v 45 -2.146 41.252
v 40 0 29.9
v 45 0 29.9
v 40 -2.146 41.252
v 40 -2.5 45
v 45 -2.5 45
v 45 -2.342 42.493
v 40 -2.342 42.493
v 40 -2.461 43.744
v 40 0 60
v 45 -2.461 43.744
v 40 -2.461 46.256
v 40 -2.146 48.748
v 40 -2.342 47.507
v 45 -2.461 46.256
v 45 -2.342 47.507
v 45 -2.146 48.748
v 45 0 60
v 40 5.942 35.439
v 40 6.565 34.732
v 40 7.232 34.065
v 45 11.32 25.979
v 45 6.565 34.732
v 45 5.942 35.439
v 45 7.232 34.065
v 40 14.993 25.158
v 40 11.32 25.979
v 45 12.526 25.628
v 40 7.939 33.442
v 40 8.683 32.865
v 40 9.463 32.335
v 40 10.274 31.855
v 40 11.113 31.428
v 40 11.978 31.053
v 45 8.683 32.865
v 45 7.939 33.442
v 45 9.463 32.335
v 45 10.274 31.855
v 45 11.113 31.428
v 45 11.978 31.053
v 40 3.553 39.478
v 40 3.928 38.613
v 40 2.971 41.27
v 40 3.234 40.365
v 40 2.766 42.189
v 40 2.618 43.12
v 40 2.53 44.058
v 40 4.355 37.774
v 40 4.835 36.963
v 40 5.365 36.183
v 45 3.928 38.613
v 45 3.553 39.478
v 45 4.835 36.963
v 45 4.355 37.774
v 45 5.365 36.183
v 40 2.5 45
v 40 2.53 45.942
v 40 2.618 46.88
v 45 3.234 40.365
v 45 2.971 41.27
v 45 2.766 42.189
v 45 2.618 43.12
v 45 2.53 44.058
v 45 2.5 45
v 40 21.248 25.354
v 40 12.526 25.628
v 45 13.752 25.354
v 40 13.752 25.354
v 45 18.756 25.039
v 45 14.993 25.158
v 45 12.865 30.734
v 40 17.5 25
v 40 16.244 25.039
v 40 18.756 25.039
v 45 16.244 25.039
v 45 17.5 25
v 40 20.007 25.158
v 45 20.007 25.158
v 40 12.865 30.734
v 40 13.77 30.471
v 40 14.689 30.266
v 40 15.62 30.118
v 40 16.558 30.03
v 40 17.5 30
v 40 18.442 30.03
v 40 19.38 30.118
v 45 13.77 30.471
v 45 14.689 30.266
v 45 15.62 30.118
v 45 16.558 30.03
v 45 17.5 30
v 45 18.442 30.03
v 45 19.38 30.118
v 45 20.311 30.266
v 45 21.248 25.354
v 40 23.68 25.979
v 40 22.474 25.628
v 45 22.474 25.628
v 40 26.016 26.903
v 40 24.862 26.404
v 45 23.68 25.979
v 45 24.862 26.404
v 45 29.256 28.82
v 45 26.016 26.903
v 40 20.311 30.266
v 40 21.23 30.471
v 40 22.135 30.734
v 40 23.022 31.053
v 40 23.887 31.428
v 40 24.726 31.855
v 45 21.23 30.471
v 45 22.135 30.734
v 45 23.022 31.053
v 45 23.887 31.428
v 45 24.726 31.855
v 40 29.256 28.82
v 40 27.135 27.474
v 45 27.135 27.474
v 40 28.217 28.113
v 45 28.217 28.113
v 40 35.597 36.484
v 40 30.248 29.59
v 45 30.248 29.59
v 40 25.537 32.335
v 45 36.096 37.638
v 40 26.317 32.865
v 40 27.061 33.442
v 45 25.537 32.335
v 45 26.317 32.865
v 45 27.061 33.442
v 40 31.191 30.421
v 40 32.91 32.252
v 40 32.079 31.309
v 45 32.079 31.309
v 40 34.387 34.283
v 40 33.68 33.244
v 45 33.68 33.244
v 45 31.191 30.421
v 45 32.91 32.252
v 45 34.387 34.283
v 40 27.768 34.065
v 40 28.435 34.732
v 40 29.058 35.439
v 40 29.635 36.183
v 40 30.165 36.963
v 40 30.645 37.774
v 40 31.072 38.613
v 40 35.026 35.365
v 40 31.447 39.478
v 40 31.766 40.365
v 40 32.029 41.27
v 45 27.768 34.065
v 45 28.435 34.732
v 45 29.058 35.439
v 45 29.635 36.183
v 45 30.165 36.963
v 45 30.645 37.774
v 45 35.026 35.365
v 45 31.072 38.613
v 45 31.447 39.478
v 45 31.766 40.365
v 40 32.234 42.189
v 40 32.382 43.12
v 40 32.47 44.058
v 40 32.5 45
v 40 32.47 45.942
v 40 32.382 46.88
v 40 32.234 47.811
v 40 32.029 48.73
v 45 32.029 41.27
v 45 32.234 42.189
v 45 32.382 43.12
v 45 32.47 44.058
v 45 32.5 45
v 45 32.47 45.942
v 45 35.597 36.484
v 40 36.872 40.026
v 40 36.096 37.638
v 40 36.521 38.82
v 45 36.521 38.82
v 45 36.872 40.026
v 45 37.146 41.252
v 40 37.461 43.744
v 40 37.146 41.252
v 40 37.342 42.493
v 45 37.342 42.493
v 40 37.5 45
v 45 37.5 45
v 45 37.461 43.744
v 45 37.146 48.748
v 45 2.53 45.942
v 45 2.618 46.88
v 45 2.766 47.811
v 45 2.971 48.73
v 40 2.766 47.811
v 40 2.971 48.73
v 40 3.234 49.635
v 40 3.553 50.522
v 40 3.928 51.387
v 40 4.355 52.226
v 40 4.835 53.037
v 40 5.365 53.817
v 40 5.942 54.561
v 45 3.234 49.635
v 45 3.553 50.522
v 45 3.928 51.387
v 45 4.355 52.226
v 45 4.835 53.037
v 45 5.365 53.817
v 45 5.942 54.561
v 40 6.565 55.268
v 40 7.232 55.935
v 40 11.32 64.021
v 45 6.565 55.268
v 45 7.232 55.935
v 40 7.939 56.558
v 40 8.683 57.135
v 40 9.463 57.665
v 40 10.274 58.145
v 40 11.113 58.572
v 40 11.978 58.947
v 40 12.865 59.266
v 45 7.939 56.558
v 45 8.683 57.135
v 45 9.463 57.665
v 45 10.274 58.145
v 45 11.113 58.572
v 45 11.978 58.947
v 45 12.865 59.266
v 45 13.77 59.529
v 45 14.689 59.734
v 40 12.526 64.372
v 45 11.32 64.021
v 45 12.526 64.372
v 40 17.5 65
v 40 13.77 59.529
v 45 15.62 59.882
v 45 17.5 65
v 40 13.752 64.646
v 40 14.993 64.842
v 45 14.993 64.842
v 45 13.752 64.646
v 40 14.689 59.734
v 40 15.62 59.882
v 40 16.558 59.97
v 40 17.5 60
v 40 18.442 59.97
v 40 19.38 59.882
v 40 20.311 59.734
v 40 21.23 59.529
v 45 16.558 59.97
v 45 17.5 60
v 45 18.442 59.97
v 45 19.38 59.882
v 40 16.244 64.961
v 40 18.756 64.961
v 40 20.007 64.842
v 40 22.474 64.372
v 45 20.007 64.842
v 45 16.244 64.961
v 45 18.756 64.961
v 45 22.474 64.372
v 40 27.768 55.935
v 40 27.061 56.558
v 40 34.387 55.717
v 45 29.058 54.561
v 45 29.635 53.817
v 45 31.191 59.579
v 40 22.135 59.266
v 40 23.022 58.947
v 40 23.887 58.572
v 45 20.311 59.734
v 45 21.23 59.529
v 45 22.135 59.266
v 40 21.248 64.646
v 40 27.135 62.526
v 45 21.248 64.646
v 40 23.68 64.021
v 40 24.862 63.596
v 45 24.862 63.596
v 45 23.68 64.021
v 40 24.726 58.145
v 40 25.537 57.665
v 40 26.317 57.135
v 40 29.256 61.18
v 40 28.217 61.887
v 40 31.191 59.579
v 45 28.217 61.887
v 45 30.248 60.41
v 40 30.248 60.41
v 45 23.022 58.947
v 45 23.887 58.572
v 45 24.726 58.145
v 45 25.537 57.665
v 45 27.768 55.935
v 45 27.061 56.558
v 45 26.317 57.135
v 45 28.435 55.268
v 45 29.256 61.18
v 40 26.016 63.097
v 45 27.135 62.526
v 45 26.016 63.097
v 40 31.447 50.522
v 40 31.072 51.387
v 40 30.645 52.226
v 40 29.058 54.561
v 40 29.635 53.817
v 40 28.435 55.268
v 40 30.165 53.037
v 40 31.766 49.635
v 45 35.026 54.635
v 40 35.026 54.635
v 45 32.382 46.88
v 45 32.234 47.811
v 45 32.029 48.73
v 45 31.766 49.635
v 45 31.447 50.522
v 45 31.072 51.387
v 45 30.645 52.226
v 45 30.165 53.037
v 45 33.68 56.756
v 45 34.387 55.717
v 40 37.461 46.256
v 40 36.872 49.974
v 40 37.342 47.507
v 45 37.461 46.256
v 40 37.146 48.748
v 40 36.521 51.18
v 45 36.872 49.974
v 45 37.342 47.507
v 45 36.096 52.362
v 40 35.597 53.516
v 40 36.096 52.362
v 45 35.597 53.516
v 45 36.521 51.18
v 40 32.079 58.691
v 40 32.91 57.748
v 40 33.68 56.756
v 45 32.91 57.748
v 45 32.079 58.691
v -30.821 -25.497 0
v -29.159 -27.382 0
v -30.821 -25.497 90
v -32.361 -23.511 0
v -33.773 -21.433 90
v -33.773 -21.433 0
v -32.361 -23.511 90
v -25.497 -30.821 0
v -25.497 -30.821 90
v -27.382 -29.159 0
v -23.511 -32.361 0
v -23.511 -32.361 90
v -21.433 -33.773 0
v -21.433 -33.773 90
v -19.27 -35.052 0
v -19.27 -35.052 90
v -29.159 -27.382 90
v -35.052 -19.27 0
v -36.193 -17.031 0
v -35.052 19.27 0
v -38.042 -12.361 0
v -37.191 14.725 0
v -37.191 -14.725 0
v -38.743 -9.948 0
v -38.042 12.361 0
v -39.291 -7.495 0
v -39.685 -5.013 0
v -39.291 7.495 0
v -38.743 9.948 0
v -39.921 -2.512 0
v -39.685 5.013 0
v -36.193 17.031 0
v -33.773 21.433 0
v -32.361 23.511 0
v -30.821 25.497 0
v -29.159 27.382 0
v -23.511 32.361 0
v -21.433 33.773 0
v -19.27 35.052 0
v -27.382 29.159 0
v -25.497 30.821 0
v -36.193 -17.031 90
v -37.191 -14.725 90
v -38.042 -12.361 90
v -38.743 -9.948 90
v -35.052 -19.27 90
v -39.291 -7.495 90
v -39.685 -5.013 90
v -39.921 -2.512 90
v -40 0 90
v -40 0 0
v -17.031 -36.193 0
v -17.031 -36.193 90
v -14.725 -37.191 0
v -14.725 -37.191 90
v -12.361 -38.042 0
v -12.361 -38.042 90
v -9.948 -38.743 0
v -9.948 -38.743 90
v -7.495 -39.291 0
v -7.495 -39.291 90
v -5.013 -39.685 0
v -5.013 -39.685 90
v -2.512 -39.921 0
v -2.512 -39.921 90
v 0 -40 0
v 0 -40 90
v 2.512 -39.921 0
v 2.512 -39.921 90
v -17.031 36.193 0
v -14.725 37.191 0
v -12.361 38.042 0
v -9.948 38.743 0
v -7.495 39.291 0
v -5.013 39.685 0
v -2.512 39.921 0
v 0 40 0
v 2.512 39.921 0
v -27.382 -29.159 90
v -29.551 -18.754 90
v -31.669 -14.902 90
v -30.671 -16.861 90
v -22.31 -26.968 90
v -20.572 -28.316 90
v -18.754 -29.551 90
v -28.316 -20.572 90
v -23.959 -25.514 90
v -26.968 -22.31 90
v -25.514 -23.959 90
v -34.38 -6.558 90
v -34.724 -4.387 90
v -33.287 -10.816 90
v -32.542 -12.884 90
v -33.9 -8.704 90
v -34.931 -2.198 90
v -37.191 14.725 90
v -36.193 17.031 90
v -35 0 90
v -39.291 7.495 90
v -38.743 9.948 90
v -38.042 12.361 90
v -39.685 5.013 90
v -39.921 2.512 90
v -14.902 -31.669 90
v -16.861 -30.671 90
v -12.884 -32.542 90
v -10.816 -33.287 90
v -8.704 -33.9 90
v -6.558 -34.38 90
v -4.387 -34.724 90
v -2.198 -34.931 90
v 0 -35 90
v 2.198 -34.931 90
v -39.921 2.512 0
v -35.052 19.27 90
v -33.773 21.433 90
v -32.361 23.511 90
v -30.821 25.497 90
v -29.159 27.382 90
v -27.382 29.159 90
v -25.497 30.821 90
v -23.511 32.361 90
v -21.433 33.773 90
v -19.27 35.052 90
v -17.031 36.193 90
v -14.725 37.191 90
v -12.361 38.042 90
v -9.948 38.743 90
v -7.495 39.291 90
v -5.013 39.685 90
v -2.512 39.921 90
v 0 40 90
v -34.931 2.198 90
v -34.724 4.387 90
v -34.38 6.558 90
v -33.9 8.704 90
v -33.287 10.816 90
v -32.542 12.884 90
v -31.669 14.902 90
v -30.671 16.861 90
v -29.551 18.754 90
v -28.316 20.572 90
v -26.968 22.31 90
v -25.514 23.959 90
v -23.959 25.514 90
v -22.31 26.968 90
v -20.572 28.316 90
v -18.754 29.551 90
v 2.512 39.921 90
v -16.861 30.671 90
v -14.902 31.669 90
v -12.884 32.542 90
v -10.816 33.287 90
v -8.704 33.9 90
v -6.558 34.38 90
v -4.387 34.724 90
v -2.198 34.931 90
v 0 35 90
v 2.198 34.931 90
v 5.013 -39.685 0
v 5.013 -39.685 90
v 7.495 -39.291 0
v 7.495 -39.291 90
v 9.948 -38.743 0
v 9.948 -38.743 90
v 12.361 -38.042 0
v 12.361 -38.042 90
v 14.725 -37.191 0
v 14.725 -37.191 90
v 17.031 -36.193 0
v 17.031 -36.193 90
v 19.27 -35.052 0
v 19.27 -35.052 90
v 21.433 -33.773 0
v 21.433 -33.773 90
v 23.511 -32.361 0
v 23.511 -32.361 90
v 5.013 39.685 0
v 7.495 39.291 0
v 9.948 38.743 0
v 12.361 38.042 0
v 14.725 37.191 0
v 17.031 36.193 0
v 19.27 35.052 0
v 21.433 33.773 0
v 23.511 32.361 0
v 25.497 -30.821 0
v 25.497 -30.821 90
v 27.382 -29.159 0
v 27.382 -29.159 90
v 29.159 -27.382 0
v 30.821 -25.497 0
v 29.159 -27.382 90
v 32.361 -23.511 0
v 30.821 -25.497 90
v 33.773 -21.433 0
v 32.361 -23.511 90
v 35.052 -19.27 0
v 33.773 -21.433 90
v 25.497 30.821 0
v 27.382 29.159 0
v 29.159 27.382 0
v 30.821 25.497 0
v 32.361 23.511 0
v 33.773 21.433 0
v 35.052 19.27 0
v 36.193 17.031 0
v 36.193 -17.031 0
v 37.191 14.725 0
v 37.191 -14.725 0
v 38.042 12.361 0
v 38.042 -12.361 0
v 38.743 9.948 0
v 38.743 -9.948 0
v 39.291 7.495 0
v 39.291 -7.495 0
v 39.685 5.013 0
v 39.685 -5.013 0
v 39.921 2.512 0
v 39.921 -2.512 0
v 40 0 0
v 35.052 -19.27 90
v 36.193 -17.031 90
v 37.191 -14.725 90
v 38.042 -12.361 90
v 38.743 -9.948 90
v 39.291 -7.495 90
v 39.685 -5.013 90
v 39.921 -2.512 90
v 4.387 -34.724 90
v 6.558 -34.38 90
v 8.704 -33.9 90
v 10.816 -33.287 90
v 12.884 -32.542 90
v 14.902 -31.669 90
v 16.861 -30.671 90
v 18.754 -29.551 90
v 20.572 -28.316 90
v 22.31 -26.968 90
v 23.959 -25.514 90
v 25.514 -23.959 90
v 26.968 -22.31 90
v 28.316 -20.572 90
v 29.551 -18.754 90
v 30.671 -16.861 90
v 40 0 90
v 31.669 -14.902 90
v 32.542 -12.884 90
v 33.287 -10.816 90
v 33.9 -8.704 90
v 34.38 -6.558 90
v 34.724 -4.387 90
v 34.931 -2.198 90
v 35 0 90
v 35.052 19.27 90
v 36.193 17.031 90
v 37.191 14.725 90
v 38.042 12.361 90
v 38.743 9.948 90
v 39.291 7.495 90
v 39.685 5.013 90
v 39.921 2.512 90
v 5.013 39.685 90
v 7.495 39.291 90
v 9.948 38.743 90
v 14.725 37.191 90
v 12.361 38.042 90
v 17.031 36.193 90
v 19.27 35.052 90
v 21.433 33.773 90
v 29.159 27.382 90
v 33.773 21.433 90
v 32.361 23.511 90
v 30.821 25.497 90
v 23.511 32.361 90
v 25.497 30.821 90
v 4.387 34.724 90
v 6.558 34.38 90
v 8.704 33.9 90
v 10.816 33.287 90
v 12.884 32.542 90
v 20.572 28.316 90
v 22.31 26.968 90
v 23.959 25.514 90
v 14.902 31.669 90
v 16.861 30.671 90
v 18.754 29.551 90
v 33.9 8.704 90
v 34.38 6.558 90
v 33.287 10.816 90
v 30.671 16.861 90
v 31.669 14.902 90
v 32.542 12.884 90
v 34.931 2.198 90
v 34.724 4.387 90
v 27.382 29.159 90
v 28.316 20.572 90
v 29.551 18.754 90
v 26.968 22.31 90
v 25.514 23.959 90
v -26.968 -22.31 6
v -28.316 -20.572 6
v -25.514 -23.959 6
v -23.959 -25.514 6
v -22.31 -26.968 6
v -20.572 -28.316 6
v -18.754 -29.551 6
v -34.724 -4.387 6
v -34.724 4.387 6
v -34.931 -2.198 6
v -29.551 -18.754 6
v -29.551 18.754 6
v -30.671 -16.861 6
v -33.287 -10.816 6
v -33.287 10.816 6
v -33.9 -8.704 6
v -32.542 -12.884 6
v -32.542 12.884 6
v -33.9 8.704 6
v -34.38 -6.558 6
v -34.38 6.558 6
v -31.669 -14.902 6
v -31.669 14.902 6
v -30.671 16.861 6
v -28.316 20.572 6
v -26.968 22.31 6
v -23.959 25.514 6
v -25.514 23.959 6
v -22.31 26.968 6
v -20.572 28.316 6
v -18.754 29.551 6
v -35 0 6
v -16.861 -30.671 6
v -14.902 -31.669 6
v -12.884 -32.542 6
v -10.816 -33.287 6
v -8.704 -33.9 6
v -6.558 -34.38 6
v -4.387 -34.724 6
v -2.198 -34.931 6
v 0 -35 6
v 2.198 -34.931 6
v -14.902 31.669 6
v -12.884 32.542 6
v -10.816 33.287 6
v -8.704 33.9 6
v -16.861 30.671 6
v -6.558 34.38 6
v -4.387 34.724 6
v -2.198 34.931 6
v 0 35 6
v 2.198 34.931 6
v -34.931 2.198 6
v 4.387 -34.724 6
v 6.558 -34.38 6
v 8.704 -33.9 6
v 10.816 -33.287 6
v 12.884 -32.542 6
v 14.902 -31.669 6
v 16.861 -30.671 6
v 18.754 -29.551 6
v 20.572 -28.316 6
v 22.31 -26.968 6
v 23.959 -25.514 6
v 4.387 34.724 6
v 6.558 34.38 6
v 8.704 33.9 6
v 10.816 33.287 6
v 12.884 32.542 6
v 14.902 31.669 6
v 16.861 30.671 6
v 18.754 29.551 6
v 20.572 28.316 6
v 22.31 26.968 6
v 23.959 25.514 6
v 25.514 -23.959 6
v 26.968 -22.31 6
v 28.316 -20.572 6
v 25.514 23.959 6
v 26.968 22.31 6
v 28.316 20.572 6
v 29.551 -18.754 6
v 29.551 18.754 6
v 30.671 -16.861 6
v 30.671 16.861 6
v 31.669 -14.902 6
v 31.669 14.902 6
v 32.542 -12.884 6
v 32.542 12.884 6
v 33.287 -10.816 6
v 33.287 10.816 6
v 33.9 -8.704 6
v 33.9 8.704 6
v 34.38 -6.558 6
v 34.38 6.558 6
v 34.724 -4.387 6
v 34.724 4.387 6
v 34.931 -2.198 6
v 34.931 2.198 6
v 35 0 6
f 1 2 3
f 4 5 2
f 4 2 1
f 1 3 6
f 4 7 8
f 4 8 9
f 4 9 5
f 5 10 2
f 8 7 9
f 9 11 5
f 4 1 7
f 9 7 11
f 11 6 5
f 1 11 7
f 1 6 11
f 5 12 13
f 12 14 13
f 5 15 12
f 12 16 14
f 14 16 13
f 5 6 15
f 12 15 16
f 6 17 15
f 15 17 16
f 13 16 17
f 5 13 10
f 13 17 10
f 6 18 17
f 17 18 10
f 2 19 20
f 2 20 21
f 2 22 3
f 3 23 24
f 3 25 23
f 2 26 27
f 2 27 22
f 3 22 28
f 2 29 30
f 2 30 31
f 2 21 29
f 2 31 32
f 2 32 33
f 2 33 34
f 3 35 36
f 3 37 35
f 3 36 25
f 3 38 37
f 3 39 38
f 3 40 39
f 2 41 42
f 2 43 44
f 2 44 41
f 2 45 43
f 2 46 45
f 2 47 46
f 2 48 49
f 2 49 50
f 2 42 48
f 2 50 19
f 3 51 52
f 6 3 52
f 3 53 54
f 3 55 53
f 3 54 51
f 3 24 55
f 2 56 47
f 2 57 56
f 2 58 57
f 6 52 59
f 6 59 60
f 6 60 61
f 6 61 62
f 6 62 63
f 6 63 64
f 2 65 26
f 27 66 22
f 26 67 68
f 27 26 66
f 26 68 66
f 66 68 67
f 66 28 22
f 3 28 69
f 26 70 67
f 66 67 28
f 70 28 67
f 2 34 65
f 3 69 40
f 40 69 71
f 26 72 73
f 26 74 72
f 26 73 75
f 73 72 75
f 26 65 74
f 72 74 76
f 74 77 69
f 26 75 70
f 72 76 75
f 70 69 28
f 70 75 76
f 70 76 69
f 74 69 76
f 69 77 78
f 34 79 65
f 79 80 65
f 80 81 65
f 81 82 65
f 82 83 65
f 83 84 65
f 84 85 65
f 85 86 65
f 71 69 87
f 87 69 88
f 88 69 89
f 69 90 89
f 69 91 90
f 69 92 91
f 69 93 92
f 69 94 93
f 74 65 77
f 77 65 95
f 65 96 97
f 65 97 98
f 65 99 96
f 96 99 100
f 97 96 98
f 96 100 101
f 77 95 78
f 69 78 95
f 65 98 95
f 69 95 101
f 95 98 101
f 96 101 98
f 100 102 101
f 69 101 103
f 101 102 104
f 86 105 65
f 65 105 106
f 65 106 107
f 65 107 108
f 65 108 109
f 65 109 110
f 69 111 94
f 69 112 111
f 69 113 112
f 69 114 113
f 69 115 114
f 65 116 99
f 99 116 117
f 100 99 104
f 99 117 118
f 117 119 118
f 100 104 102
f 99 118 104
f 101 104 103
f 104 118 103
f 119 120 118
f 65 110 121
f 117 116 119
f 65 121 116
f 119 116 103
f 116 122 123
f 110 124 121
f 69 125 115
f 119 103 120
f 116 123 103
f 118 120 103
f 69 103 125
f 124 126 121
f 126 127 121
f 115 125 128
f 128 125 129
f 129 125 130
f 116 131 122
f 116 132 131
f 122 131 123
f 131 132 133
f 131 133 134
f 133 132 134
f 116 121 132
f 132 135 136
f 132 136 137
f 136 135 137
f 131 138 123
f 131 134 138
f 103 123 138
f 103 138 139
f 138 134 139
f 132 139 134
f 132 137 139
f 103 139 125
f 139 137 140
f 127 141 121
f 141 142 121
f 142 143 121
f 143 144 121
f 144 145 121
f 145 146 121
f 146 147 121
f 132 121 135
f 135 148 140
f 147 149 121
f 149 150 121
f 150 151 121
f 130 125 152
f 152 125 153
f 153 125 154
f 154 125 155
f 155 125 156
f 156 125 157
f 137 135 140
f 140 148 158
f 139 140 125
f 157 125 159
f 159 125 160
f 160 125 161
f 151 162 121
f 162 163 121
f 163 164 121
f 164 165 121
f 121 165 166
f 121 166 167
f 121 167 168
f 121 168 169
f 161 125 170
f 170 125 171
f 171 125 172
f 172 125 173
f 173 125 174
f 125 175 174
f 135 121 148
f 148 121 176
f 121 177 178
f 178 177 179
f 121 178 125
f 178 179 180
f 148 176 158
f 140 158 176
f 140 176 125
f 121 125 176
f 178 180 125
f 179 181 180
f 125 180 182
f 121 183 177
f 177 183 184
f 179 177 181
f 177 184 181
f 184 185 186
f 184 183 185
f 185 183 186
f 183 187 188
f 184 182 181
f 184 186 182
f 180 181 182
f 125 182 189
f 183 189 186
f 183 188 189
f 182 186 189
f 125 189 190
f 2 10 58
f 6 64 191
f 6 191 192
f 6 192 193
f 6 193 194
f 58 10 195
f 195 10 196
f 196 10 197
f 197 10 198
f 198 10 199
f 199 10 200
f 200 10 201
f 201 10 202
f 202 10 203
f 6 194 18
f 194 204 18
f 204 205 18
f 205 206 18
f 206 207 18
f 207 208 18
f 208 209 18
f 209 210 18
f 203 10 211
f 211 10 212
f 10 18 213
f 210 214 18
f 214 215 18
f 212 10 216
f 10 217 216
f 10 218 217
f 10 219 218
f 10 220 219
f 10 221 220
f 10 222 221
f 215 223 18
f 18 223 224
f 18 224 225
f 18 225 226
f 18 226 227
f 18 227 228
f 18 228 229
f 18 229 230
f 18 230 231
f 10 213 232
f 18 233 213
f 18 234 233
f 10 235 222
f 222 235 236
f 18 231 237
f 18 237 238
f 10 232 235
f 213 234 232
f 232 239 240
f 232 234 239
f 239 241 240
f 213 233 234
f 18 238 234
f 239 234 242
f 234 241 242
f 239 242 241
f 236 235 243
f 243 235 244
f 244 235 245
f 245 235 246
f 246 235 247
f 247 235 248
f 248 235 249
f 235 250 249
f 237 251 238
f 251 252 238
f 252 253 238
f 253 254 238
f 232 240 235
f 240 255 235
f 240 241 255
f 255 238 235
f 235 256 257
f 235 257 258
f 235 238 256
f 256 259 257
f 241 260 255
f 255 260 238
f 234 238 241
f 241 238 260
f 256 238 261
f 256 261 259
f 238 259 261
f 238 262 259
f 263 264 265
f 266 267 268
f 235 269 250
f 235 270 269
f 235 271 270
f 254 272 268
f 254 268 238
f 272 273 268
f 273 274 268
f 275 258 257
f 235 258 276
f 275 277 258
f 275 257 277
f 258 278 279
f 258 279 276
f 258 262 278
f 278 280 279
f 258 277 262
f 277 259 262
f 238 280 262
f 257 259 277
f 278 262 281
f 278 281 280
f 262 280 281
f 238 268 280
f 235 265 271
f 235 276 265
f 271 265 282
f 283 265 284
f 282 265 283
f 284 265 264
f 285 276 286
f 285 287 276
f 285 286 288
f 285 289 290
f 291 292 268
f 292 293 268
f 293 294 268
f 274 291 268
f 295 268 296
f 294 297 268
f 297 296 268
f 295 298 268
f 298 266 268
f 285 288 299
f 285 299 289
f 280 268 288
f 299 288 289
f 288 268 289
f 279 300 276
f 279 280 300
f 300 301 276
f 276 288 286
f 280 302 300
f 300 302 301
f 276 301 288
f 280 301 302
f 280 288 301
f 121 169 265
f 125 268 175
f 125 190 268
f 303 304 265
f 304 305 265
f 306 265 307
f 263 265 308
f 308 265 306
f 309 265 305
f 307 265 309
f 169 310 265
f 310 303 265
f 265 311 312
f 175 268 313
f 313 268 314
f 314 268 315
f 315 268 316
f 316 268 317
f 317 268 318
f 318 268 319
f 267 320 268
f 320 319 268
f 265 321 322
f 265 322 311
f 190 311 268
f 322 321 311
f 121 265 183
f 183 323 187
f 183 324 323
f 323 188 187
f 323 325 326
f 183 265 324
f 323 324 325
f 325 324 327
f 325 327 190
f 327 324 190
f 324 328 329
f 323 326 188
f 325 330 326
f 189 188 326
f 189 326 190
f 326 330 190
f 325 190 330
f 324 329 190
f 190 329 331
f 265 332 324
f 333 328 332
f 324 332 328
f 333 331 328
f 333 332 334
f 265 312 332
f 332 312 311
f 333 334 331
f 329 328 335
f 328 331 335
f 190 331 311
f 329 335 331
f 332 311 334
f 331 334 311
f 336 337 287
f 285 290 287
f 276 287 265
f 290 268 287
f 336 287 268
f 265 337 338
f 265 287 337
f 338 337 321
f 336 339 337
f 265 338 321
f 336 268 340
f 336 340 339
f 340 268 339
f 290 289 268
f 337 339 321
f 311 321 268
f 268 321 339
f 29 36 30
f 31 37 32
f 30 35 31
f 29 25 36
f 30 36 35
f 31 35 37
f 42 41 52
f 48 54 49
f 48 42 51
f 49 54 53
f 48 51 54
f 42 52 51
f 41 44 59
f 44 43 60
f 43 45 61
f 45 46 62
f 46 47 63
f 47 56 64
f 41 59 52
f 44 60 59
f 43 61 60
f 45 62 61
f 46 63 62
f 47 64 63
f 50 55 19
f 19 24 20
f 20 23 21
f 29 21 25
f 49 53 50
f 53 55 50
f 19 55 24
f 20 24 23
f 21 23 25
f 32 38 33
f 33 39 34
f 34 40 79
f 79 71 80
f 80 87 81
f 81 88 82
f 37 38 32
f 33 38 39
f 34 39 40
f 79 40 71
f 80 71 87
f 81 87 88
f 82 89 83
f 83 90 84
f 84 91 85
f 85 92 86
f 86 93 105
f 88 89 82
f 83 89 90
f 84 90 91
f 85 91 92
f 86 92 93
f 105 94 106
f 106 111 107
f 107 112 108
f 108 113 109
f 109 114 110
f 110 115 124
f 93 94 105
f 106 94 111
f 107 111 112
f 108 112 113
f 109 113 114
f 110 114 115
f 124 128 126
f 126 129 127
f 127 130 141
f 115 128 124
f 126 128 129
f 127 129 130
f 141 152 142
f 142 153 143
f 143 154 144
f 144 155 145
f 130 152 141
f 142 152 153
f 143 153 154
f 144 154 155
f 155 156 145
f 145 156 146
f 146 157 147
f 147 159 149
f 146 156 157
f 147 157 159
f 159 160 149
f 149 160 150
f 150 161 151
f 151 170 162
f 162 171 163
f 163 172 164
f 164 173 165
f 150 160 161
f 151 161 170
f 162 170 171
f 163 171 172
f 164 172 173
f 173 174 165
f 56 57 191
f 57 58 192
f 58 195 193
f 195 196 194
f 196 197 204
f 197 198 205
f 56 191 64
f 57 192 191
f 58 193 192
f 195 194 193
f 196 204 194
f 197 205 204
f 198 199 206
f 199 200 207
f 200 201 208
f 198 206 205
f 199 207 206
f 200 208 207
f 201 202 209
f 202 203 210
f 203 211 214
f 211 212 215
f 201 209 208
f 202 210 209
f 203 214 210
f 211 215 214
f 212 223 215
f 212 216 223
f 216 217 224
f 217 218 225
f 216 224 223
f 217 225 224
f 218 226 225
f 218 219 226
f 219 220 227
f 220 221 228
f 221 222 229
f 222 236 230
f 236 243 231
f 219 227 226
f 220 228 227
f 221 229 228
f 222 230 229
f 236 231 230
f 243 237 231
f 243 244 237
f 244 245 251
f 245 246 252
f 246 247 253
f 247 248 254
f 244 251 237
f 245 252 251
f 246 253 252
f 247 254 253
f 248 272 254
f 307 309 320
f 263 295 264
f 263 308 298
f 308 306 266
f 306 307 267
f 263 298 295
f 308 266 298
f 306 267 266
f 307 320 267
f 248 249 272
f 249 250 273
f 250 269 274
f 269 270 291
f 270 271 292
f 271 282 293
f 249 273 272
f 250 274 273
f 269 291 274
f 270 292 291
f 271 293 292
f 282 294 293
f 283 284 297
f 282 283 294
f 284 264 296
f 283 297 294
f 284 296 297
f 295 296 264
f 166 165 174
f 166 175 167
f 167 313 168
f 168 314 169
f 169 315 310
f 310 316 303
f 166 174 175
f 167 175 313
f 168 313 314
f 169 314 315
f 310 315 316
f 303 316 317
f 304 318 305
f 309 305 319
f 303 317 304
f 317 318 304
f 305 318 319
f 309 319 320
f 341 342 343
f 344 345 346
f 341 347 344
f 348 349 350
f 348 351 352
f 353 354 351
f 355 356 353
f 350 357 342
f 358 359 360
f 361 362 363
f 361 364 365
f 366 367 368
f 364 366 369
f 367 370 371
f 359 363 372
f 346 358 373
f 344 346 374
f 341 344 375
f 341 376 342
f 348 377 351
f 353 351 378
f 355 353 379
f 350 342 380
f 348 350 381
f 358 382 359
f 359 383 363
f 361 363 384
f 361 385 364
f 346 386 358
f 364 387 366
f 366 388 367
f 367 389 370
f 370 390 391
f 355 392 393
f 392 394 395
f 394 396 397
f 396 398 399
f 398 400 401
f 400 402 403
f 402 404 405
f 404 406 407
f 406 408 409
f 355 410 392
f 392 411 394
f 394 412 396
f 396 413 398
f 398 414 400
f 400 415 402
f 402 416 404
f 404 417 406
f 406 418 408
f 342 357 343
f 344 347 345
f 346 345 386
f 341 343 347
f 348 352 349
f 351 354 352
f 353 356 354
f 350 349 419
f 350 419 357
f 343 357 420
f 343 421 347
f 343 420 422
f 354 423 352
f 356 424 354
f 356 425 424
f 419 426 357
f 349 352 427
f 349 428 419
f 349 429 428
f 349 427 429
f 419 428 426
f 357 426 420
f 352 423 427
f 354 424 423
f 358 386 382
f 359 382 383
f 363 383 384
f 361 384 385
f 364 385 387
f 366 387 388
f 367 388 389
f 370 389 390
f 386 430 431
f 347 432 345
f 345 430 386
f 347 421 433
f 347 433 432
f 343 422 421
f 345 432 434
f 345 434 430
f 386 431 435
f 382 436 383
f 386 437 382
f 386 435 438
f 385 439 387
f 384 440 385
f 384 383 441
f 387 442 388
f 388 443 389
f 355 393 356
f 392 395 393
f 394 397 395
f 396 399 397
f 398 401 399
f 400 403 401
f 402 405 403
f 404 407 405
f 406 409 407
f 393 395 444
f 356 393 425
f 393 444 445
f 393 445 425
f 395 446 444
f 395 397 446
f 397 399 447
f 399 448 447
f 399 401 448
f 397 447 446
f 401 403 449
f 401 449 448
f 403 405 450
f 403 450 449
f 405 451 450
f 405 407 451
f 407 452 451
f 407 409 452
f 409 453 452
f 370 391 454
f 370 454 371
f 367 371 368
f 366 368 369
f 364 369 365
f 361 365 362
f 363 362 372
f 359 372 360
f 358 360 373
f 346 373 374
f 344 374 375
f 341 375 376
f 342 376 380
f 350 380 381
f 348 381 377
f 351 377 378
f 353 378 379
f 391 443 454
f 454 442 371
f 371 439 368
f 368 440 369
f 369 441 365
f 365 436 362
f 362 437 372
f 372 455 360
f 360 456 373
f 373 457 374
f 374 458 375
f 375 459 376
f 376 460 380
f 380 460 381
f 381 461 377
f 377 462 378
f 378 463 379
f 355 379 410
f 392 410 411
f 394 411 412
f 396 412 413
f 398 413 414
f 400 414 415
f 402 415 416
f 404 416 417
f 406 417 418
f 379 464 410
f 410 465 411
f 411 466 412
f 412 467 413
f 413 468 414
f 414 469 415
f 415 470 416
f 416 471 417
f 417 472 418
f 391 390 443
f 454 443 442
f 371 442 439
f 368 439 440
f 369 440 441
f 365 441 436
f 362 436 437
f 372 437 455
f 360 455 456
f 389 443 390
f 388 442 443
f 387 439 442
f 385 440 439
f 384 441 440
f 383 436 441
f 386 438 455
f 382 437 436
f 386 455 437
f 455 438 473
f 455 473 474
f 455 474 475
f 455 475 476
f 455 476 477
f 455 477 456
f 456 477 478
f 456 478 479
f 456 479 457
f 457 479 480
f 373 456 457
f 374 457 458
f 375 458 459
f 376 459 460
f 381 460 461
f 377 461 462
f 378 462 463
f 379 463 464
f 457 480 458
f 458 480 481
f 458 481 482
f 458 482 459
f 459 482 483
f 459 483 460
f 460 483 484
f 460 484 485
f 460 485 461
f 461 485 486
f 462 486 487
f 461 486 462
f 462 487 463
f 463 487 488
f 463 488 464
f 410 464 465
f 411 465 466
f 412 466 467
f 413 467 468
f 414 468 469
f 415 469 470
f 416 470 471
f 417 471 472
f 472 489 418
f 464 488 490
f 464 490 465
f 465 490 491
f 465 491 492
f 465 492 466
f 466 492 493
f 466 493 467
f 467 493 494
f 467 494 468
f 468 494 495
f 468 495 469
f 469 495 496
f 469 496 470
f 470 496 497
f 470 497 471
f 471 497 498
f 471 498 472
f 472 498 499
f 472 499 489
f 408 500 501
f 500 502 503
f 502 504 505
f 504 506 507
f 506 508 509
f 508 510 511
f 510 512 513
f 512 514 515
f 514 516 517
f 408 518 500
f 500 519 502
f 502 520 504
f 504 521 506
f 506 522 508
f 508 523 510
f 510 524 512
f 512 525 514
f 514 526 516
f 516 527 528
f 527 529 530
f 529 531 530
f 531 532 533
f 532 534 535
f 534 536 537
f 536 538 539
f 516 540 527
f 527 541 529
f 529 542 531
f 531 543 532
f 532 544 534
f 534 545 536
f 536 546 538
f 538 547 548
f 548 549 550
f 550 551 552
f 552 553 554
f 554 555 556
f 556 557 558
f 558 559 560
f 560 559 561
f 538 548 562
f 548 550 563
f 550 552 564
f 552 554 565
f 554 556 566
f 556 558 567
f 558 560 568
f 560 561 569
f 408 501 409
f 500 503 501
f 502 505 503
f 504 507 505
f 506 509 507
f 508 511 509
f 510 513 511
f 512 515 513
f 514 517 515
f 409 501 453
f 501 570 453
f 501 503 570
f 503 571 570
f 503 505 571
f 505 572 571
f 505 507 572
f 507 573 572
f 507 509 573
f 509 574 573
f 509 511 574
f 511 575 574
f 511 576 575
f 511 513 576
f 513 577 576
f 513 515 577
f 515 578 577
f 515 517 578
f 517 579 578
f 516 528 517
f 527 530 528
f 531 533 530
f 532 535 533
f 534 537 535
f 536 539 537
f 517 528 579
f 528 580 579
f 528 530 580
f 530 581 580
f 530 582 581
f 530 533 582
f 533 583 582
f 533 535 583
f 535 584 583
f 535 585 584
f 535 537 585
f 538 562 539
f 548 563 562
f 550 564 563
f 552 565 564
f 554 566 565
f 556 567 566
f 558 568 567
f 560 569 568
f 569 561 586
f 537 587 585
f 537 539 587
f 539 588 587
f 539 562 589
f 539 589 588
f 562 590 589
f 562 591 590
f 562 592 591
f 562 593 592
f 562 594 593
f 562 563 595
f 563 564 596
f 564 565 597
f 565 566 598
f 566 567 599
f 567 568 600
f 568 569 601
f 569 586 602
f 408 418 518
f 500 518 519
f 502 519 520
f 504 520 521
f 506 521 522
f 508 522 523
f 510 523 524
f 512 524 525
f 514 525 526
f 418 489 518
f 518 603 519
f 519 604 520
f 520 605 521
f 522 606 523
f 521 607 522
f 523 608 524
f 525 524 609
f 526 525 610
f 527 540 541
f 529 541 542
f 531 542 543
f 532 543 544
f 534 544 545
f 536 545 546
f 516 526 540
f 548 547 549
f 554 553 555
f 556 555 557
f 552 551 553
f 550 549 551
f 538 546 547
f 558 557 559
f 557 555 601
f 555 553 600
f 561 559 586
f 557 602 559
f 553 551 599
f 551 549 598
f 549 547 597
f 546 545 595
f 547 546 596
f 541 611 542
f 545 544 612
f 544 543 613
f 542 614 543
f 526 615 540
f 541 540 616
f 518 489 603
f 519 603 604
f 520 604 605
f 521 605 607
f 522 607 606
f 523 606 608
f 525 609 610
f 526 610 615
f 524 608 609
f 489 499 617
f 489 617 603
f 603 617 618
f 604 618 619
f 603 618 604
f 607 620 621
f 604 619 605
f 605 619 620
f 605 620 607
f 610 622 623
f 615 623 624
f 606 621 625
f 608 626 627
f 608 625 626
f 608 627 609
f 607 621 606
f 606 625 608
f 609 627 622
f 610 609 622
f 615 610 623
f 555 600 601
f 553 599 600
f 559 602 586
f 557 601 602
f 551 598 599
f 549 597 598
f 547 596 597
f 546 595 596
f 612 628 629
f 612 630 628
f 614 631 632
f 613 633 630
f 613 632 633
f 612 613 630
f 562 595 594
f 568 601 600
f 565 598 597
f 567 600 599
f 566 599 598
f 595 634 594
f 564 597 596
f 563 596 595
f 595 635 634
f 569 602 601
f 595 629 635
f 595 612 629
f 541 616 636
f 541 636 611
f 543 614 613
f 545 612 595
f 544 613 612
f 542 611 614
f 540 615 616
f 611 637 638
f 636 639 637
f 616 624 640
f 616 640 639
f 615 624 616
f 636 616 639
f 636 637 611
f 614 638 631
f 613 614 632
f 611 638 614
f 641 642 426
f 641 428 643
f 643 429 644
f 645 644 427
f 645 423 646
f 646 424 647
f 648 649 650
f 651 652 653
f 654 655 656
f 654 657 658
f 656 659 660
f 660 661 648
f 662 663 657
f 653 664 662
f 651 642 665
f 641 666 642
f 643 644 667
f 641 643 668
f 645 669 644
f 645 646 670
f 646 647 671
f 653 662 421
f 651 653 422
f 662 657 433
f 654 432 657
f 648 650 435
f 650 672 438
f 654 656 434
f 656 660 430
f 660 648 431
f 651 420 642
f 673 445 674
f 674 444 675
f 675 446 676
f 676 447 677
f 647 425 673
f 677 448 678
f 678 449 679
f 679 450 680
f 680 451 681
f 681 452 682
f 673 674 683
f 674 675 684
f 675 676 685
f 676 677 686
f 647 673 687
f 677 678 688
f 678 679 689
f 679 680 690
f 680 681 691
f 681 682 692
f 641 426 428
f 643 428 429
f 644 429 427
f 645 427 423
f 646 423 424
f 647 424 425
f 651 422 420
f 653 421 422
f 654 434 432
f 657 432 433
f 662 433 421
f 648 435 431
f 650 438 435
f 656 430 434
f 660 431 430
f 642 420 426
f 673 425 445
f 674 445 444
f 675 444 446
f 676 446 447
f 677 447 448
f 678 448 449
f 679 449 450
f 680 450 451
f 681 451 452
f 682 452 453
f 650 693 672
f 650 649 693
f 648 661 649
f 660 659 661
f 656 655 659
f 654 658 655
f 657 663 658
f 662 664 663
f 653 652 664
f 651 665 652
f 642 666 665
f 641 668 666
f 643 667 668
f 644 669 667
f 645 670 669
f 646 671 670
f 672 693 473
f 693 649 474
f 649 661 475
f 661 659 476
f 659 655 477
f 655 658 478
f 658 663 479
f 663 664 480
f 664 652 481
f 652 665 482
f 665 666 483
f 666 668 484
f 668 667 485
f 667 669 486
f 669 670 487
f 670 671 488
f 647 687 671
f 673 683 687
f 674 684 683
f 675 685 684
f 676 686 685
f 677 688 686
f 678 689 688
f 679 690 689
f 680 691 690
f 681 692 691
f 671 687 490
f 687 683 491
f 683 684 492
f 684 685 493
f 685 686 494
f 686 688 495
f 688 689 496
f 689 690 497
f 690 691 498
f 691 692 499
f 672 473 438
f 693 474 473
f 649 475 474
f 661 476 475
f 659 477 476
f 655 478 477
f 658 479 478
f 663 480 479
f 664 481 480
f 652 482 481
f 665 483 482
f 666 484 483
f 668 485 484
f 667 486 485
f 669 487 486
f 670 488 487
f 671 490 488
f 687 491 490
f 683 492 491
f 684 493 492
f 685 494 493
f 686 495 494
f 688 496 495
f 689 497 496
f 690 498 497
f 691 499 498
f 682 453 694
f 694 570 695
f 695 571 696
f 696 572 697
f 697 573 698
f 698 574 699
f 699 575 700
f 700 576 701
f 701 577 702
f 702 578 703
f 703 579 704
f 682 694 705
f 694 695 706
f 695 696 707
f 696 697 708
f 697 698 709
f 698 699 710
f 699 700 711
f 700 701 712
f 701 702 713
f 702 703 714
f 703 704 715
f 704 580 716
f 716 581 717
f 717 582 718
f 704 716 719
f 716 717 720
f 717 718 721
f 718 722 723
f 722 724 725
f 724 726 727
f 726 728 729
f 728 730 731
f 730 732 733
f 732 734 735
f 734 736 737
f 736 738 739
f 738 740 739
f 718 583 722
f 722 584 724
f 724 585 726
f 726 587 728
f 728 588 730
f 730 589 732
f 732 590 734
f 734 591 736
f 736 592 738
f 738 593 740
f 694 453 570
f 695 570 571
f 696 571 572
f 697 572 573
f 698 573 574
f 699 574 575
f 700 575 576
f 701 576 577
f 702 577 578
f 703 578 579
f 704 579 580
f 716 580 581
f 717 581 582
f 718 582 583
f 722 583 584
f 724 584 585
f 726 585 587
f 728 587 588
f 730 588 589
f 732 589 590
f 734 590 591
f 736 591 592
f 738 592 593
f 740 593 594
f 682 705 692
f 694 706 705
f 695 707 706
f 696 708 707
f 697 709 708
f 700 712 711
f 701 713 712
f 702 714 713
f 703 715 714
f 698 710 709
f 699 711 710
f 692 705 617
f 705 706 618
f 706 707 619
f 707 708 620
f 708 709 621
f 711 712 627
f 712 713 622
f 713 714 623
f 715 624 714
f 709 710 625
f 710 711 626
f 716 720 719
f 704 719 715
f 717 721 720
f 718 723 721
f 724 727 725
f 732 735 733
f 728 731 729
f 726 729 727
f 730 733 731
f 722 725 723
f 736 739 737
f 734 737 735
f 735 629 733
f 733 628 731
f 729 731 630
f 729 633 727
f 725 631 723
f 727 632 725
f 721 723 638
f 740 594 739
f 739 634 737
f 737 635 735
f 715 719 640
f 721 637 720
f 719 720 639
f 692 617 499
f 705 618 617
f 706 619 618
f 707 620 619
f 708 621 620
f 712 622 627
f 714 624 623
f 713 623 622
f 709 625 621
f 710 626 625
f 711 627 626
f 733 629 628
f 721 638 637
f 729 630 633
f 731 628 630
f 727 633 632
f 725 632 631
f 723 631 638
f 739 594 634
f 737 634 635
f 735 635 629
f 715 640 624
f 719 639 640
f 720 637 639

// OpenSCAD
$fn = 100;

// パラメータ
outer_diameter = 80;
inner_diameter = 70;
wall_thickness = 5;
height = 90;
bottom_thickness = 6;

// 取手パラメータ
handle_hole_height = 30;
handle_hole_width = 25;
handle_thickness = 5;
handle_vertical_center = height / 2;

difference() {
    union() {
        // 本体外側
        cylinder(d = outer_diameter, h = height);
        
        // 取手（+X軸方向）
        translate([outer_diameter/2, 0, handle_vertical_center]) {
            rotate([0, 90, 0]) {
                difference() {
                    // 取手の外側形状（Dシェイプ）
                    hull() {
                        // 外側の半円部分
                        translate([0, handle_hole_width/2 + handle_thickness, 0])
                            cylinder(d = handle_hole_height + 2*handle_thickness, h = handle_thickness);
                        // 本体接続部分の上下
                        translate([handle_hole_height/2, 0, 0])
                            cube([0.1, 0.1, handle_thickness]);
                        translate([-handle_hole_height/2, 0, 0])
                            cube([0.1, 0.1, handle_thickness]);
                    }
                    // 取手の穴
                    translate([0, handle_hole_width/2 + handle_thickness, -1])
                        cylinder(d = handle_hole_height, h = handle_thickness + 2);
                }
            }
        }
    }
    
    // 内側を削る（飲み物を入れる部分）
    translate([0, 0, bottom_thickness])
        cylinder(d = inner_diameter, h = height);
}
